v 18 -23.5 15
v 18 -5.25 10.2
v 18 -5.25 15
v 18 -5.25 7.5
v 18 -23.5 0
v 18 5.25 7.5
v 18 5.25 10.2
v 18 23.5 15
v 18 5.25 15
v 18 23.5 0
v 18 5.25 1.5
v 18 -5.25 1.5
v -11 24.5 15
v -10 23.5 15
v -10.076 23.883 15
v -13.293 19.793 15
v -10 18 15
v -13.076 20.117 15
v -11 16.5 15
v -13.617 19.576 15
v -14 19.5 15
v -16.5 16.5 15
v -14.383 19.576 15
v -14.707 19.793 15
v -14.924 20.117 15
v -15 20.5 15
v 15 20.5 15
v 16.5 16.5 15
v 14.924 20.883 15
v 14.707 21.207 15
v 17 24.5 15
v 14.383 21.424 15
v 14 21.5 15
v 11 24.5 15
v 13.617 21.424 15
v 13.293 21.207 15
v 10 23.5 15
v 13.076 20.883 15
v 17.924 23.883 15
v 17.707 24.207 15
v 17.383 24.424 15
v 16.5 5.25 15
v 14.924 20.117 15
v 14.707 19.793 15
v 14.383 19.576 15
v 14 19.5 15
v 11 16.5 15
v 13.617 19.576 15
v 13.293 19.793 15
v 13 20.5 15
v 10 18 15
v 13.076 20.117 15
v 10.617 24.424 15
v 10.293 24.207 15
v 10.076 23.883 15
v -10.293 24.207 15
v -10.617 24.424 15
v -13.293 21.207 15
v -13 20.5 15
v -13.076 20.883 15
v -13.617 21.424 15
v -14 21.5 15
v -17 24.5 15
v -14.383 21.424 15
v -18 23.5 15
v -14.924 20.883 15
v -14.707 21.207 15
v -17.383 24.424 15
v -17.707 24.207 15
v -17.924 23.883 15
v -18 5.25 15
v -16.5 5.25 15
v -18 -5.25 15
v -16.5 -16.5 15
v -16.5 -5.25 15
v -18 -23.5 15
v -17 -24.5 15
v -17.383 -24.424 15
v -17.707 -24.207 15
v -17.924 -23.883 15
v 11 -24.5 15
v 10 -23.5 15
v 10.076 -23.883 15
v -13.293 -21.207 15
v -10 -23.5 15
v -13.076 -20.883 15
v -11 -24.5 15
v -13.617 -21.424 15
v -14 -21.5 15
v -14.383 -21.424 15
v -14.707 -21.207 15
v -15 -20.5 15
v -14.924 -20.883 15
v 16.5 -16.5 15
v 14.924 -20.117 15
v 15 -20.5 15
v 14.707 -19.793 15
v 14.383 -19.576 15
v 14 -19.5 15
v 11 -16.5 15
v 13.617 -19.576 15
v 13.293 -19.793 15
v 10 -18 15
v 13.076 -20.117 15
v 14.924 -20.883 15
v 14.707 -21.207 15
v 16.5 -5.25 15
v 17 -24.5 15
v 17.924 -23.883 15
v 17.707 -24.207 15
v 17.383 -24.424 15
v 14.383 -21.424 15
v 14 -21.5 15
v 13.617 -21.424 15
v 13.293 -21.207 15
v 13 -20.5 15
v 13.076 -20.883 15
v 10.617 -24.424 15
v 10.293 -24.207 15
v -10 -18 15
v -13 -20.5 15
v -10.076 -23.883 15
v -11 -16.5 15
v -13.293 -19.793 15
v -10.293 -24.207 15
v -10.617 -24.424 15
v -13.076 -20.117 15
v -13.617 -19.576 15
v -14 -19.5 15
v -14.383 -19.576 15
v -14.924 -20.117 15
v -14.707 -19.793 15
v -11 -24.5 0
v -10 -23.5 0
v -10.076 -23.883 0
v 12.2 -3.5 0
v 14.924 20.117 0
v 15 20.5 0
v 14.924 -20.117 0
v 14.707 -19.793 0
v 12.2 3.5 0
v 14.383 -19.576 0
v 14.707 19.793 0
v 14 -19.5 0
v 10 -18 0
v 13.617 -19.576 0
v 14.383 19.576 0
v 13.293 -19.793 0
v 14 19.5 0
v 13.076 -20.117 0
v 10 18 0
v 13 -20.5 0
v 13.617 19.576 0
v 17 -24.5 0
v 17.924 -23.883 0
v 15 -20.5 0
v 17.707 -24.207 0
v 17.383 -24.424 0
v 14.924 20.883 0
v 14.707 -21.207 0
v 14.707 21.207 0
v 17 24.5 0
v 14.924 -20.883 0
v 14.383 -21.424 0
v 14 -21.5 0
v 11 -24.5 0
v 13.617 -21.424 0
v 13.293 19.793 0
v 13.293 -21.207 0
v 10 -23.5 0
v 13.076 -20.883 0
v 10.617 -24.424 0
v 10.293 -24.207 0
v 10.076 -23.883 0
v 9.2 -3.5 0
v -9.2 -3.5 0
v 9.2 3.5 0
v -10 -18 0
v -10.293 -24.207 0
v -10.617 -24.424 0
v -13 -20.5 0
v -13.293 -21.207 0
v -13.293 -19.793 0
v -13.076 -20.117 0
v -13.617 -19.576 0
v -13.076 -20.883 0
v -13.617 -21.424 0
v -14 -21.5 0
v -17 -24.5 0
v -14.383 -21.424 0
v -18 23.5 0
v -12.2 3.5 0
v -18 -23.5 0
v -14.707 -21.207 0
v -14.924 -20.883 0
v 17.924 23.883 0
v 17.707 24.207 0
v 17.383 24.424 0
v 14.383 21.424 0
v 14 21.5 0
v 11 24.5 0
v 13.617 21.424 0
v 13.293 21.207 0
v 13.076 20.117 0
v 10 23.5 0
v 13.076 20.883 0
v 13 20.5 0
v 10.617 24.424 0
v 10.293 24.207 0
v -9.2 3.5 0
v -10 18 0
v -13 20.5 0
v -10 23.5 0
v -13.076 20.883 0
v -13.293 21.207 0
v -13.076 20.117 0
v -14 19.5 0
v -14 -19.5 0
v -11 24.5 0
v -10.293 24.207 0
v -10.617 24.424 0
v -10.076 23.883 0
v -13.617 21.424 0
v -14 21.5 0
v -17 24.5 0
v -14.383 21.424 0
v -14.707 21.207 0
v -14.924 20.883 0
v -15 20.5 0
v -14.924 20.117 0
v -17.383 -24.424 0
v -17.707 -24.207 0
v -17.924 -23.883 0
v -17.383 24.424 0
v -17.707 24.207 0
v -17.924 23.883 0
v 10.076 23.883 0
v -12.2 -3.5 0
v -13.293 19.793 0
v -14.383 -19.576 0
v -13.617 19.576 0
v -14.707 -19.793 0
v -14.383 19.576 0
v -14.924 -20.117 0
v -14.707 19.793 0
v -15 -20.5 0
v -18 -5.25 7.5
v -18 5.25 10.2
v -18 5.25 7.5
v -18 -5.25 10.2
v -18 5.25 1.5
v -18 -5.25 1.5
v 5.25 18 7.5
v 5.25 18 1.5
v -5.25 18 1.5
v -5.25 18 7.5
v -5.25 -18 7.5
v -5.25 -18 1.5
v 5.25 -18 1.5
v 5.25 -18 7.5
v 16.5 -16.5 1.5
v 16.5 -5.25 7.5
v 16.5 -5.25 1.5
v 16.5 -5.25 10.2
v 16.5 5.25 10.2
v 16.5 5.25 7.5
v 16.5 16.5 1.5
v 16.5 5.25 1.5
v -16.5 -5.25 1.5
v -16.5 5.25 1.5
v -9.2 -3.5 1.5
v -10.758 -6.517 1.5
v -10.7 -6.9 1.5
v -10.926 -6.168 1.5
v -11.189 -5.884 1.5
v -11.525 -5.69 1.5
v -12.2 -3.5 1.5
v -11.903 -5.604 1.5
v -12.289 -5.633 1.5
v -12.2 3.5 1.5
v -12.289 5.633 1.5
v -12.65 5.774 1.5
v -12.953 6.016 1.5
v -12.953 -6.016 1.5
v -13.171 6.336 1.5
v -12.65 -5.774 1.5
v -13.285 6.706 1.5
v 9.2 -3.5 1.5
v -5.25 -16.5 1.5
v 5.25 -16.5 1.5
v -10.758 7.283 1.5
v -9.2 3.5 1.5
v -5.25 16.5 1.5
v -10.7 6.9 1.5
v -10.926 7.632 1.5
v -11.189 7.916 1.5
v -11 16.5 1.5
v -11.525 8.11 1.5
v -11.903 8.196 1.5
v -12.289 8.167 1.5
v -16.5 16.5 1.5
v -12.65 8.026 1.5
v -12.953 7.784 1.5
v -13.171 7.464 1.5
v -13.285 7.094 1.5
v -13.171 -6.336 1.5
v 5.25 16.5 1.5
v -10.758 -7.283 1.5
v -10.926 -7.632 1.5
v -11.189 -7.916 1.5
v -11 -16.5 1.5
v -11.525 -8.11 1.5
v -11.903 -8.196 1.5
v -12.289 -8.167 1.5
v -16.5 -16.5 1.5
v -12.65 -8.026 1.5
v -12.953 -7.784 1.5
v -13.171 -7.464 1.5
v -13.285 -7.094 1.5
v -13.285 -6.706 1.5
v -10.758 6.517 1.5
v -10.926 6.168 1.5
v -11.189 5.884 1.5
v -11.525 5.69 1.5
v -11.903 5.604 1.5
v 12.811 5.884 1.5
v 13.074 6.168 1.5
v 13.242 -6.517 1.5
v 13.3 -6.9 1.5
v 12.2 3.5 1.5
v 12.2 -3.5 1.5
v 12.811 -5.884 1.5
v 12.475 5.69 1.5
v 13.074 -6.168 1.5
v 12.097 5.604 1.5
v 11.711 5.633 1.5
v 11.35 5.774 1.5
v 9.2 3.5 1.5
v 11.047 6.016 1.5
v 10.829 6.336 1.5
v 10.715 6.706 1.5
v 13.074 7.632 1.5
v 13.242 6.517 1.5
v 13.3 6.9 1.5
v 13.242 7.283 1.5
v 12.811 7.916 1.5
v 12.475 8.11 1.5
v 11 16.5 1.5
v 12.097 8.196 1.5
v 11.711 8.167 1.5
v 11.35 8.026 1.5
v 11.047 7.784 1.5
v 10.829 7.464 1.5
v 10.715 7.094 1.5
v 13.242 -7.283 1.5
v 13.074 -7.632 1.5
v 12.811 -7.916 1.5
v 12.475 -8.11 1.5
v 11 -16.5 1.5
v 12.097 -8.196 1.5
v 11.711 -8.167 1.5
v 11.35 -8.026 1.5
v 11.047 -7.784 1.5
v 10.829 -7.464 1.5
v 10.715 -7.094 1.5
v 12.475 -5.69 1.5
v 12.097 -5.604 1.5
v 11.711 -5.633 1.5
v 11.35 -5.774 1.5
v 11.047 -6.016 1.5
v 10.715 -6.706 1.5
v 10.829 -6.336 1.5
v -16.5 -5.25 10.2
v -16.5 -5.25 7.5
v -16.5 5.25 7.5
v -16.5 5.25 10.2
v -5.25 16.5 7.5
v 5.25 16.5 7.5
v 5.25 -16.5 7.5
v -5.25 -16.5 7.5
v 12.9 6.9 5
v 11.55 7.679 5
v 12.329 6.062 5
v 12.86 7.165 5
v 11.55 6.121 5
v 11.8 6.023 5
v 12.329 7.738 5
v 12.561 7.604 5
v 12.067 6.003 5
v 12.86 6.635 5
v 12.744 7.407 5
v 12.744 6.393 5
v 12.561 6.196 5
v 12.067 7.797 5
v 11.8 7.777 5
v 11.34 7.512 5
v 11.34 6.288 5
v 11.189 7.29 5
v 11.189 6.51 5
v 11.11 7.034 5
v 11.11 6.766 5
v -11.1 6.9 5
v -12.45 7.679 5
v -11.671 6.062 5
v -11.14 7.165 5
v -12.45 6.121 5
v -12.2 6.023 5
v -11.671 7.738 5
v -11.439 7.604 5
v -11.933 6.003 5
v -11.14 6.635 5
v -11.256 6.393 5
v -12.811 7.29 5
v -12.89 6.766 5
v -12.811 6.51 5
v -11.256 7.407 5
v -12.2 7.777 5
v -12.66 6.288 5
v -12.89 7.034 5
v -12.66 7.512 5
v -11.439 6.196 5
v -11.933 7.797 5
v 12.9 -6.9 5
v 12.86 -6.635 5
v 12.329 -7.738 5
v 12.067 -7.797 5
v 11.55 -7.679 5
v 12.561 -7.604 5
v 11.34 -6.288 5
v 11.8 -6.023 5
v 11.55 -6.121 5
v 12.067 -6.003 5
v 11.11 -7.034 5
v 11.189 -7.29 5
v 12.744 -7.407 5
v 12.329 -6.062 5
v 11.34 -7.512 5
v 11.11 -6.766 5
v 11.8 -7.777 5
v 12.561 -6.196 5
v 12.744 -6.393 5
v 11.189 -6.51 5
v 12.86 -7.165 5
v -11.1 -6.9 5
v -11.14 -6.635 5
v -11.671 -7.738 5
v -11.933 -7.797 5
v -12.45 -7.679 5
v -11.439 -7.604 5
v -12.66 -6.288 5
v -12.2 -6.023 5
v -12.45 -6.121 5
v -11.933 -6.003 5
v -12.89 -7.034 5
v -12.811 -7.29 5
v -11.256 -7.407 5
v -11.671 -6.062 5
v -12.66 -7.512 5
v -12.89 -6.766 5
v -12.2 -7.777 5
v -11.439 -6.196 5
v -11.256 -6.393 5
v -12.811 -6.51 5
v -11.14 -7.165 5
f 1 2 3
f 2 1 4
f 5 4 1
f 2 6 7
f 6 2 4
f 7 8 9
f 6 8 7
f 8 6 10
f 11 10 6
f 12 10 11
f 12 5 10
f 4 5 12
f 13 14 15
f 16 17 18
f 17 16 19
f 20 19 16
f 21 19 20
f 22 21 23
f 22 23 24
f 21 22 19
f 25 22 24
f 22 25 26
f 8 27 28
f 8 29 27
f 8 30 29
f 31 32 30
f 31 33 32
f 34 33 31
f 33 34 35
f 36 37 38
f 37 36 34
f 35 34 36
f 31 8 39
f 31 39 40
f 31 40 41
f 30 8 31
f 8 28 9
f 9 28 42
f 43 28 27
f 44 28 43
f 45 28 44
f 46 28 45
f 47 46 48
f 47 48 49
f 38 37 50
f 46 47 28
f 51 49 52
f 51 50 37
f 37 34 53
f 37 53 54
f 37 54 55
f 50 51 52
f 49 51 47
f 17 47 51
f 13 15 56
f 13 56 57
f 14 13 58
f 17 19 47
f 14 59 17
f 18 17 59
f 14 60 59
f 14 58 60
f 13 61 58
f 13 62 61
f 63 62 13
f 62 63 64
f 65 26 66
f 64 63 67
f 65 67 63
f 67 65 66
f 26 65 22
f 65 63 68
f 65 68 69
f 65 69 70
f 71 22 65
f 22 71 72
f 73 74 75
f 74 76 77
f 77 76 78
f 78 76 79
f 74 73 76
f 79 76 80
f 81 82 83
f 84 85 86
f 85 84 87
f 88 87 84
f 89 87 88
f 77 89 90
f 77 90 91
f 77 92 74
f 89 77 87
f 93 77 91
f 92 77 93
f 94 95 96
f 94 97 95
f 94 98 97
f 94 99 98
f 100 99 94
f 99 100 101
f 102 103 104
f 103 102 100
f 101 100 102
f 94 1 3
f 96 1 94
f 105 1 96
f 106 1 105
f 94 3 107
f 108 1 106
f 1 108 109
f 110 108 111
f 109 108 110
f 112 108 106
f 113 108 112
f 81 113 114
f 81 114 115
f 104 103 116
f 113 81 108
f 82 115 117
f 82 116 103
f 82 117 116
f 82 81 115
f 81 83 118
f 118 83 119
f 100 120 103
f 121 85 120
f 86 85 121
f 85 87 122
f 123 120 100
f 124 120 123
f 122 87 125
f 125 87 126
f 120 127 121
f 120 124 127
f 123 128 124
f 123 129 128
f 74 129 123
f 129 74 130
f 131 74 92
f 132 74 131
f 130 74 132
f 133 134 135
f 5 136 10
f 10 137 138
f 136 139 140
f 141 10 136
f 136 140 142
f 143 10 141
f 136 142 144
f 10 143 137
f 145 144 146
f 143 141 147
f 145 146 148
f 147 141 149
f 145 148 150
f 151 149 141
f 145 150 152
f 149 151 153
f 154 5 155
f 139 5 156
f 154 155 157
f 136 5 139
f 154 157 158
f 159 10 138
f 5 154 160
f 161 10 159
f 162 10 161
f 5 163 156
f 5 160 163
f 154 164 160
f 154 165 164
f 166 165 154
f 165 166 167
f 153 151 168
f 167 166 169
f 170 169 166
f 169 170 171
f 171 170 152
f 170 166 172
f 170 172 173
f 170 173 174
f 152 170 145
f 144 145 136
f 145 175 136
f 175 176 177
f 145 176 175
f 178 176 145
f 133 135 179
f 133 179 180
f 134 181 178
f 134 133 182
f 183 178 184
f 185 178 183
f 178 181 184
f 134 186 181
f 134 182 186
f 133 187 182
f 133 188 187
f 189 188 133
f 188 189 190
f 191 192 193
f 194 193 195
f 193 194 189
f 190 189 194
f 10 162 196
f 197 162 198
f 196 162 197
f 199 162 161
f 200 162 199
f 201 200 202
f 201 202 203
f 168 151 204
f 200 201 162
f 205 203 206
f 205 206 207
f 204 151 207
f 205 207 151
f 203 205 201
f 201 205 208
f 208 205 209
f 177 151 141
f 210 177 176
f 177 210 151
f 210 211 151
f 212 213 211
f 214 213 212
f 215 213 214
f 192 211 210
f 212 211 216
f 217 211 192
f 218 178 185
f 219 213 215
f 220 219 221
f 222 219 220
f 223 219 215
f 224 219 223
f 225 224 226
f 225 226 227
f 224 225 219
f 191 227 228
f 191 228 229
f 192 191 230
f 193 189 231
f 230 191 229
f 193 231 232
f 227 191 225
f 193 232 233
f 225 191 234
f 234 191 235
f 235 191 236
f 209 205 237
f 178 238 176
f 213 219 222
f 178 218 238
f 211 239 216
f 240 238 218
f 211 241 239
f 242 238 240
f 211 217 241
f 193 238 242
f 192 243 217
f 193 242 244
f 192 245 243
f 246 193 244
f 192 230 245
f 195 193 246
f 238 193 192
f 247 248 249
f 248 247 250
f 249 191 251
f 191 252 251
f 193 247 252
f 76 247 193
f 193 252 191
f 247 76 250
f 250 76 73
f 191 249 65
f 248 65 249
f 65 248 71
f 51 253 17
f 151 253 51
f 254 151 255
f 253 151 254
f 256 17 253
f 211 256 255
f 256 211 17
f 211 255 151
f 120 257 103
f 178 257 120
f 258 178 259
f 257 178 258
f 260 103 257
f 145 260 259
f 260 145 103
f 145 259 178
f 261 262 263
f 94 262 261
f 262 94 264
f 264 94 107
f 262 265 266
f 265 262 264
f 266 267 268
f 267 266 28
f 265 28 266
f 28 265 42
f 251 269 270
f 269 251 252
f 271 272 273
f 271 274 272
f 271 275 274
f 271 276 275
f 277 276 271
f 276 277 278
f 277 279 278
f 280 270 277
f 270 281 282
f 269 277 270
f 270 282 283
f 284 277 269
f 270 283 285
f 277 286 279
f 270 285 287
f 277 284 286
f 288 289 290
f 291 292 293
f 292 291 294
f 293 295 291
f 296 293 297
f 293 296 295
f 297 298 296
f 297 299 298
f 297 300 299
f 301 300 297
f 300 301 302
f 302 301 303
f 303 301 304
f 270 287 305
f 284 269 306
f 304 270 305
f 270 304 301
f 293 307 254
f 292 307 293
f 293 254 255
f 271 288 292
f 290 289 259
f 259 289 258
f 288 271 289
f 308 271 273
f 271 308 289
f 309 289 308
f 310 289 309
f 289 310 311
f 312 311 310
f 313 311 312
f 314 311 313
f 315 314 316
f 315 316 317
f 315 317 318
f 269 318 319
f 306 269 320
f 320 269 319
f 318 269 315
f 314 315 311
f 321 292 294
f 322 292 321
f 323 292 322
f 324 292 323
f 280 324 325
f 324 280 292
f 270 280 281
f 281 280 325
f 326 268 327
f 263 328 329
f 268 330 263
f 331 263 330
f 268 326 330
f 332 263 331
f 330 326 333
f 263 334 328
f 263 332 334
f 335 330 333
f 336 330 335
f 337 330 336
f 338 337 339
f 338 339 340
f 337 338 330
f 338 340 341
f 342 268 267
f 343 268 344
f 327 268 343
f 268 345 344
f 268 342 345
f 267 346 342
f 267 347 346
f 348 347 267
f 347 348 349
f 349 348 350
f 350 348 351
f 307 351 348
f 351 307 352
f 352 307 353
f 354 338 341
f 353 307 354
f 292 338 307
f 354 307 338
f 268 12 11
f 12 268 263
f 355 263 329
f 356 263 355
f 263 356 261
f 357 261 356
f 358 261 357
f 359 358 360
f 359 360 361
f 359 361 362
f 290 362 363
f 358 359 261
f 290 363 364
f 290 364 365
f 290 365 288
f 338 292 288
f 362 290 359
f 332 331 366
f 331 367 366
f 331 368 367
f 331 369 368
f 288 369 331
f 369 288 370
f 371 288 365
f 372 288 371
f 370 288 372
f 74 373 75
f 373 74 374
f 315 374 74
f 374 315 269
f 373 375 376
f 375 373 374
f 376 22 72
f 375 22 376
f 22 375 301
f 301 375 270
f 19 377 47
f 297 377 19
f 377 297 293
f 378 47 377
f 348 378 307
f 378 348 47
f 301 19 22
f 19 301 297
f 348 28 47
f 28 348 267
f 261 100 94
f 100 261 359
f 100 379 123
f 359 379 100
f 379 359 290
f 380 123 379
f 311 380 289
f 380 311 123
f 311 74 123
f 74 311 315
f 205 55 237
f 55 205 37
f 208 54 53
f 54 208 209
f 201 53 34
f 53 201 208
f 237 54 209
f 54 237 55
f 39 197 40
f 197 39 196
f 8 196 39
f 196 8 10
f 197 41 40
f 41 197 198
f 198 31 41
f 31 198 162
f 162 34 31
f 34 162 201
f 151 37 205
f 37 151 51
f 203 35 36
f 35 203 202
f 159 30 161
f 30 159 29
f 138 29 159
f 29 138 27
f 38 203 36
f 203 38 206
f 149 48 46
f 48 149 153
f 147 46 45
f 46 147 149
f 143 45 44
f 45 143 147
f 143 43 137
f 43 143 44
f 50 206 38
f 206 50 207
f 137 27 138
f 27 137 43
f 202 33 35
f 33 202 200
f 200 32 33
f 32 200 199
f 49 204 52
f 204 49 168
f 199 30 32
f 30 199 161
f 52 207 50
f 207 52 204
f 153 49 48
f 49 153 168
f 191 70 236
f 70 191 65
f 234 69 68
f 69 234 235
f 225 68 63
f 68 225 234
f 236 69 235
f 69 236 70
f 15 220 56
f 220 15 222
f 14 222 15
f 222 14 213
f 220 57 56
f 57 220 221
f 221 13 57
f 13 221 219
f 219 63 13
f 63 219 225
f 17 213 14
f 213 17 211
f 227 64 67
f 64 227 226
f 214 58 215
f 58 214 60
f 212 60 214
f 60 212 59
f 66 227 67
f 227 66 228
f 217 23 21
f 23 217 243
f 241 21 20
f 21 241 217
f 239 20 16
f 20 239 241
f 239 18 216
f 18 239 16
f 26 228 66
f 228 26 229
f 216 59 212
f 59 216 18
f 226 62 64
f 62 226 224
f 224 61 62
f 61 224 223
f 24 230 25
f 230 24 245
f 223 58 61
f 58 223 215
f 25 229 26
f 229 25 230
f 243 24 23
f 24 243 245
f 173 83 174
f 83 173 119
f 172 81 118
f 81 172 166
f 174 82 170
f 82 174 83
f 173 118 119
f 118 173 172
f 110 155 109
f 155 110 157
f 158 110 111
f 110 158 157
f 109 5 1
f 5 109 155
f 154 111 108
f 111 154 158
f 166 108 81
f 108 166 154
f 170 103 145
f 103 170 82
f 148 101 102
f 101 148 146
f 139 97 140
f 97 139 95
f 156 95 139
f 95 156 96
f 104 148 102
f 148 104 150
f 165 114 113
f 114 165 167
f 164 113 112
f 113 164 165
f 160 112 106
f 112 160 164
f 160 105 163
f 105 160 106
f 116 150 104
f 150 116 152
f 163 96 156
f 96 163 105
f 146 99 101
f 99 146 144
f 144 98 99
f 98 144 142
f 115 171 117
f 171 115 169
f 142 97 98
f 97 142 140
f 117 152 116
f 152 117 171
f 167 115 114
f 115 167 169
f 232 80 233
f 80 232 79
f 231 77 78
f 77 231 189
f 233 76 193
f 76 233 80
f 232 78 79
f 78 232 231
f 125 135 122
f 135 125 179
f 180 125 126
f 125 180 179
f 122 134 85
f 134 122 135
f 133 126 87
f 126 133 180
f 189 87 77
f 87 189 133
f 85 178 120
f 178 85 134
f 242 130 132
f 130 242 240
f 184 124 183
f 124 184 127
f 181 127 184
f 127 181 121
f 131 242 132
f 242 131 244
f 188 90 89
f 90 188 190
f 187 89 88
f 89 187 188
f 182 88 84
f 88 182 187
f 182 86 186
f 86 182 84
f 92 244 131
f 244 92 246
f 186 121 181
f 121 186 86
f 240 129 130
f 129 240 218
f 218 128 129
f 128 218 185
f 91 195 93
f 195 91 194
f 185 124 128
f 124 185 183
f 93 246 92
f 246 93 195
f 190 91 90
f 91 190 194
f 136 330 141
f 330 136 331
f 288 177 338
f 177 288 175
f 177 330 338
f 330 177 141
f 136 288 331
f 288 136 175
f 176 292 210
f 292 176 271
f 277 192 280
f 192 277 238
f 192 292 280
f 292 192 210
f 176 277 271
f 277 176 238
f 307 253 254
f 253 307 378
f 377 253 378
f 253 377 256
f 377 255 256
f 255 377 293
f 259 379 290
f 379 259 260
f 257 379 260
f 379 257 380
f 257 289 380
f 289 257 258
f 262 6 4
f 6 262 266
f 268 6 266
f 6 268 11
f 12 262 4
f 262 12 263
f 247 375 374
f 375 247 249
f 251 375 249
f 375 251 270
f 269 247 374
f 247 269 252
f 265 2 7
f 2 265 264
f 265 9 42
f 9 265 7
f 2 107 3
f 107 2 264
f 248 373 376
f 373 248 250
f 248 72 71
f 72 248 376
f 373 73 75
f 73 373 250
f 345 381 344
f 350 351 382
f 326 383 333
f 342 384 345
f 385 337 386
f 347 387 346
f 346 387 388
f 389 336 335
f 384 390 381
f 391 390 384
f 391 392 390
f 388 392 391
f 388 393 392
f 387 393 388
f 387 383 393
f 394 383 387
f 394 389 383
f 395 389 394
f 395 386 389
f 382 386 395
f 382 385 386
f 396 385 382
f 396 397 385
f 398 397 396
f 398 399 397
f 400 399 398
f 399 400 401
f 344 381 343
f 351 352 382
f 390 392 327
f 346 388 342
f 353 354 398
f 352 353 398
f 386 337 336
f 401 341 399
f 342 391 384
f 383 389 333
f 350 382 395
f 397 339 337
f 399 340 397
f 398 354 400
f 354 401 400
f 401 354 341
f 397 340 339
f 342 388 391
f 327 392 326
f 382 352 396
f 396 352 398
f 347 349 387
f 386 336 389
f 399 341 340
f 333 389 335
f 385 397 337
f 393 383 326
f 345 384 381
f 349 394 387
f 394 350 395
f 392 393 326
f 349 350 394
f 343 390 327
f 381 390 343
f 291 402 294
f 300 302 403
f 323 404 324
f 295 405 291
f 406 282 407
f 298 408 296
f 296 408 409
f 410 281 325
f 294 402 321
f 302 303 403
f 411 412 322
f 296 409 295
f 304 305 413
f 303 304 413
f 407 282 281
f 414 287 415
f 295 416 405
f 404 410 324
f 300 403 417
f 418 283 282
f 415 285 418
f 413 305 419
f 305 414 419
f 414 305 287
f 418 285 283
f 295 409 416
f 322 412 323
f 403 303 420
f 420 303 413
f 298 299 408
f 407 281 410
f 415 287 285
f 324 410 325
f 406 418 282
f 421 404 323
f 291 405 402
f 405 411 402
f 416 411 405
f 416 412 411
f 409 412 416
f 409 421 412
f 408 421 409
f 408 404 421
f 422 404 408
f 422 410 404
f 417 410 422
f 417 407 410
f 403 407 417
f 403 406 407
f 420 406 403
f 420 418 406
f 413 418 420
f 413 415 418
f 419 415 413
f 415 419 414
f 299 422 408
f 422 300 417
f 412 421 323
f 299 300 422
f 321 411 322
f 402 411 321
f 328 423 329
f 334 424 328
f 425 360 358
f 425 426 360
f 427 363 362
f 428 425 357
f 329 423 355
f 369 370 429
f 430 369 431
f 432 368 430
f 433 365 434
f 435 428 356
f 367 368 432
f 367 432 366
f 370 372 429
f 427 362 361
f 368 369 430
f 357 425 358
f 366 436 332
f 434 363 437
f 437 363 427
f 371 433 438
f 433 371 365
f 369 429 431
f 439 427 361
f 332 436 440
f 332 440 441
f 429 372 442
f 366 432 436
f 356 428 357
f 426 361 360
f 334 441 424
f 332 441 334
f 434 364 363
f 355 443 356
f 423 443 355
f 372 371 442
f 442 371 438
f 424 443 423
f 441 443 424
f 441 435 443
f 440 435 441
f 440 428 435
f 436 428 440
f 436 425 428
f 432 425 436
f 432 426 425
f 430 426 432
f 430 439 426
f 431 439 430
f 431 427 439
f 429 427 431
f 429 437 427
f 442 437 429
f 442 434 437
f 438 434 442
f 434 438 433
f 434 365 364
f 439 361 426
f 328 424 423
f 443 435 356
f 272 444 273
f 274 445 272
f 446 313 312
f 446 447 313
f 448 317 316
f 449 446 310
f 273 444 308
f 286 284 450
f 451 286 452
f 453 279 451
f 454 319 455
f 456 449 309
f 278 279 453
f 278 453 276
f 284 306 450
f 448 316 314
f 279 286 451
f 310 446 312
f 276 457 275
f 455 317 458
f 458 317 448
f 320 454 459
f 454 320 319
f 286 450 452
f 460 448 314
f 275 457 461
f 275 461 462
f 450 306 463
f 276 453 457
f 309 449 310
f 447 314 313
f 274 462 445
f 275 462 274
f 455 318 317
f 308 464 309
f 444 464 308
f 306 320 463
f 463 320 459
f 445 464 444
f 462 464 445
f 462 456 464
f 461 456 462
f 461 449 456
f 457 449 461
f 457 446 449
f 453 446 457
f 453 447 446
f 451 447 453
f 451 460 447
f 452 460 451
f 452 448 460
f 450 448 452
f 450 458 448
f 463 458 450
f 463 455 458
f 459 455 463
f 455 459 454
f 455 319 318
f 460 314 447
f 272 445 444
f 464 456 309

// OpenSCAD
// file: consts.scad
//    consts.scad
//    Constant values for OpenSCAD model 
//
//    Copyright (C) 2026 Clear Creek Scientific
//
//    This program is free software: you can redistribute it and/or modify
//    it under the terms of the GNU General Public License as published by
//    the Free Software Foundation, either version 3 of the License, or
//    (at your option) any later version.
//
//    This program is distributed in the hope that it will be useful,
//    but WITHOUT ANY WARRANTY; without even the implied warranty of
//    MERCHANTABILITY or FITNESS FOR A PARTICULAR PURPOSE.  See the
//    GNU General Public License for more details.
//
//    You should have received a copy of the GNU General Public License
//    along with this program.  If not, see <https://www.gnu.org/licenses/>.

WALL_WIDTH = 1.5;
TAB_WIDTH = 8;
HALF_TAB_WIDTH = 0.5 * TAB_WIDTH;
TAB_HOLE_RADIUS = 1;
TAB_CORNER_RADIUS=1;
DRAIN_HOLE_HEIGHT = 5.0;
DRAIN_HOLE_RADIUS = 2.0;
SCREW_HOLE_HEIGHT = 2.0 * WALL_WIDTH;
SCREW_HOLE_RADIUS = 1.0;
SCREW_HEAD_HEIGHT = 0.5*WALL_WIDTH;
SCREW_HEAD_RADIUS = 2.5;

BATTERY_INNER_X_DIM = 69.2;
BATTERY_INNER_Y_DIM = 19.0;
BATTERY_WALL_HEIGHT = BATTERY_INNER_Y_DIM + WALL_WIDTH + 5.0;
BATTERY_OUTER_X_DIM = BATTERY_INNER_X_DIM + 2*WALL_WIDTH;
BATTERY_OUTER_Y_DIM = BATTERY_INNER_Y_DIM + 2*WALL_WIDTH;
BATTERY_X_OFFSET = 10; 

PANEL_WALL_HEIGHT = 8;
PANEL_INNER_X_DIM = 138;
PANEL_INNER_Y_DIM = 114;
PANEL_OUTER_X_DIM = PANEL_INNER_X_DIM + 2*WALL_WIDTH;
PANEL_OUTER_Y_DIM = PANEL_INNER_Y_DIM + 2*WALL_WIDTH;
PANEL_CENTER_BOX_WIDTH = 30;

PANEL_CENTER_X_LEN = 52.5;
PANEL_CENTER_Y_LEN = 41.0;

MOUNT_INNER_X_DIM = 33.0;
MOUNT_INNER_Y_DIM = MOUNT_INNER_X_DIM;
MOUNT_WALL_HEIGHT = 36.0;
MOUNT_OUTER_X_DIM = MOUNT_INNER_X_DIM + 2*WALL_WIDTH;
MOUNT_OUTER_Y_DIM = MOUNT_INNER_Y_DIM + 2*WALL_WIDTH;

CHARGER_INNER_X_DIM = MOUNT_INNER_X_DIM;
CHARGER_INNER_Y_DIM = MOUNT_INNER_Y_DIM;
CHARGER_WALL_HEIGHT = 15.0;
CHARGER_OUTER_X_DIM = CHARGER_INNER_X_DIM + 2*WALL_WIDTH;
CHARGER_OUTER_Y_DIM = CHARGER_INNER_Y_DIM + 2*WALL_WIDTH;

HINGE_TAB_WIDTH = 15.0;
HINGE_TAB_DEPTH = 3.0;
HINGE_TAB_HEIGHT = 16.0;
HINGE_TAB_RADIUS = 3.0;

HINGE_HOLE_DEPTH = HINGE_TAB_DEPTH+0.2;
// Hinge hole needs to accept a 10/32 inch screw
HINGE_HOLE_DIAMETER = 6;
HINGE_HOLE_RADIUS = 0.5*HINGE_HOLE_DIAMETER;
HINGE_HOLE_OFFSET = HINGE_TAB_HEIGHT - (HINGE_HOLE_RADIUS+3);

HINGE_GAP = 3.1;
HINGE_SUPPORT_OVERHANG = 2.0;
// file: common.scad
//    battery_box.scad
//    OpenSCAD model for a box for a PKCELL 18650 lithium-ion battery 
//
//    Copyright (C) 2026 Clear Creek Scientific
//
//    This program is free software: you can redistribute it and/or modify
//    it under the terms of the GNU General Public License as published by
//    the Free Software Foundation, either version 3 of the License, or
//    (at your option) any later version.
//
//    This program is distributed in the hope that it will be useful,
//    but WITHOUT ANY WARRANTY; without even the implied warranty of
//    MERCHANTABILITY or FITNESS FOR A PARTICULAR PURPOSE.  See the
//    GNU General Public License for more details.
//
//    You should have received a copy of the GNU General Public License
//    along with this program.  If not, see <https://www.gnu.org/licenses/>.

include <consts.scad>
use <MCAD/boxes.scad>
use <MCAD/regular_shapes.scad>

module tab(height) {
    difference() {
        roundedBox(size=[TAB_WIDTH,TAB_WIDTH,height],radius=TAB_CORNER_RADIUS,sidesonly=true);
        translate([0,0,-height]) {
            cylinder(2*height,TAB_HOLE_RADIUS,TAB_HOLE_RADIUS);
        }
    }
}

module drain_hole() {
    //cylinder(h=DRAIN_HOLE_HEIGHT,r=DRAIN_HOLE_RADIUS,center=true);
    cube([DRAIN_HOLE_HEIGHT,DRAIN_HOLE_HEIGHT,DRAIN_HOLE_HEIGHT],center=true);
}

module screw_hole() {
    union() {
        cylinder(h=SCREW_HOLE_HEIGHT,r=SCREW_HOLE_RADIUS,center=true);
        translate([0,0,0.5*WALL_WIDTH]) {
            cylinder(h=SCREW_HEAD_HEIGHT,r=SCREW_HEAD_RADIUS,center=true);
        }
    }
}

module hinge_tab(hole_offset) {
    rotate([90,0,0]) {
        difference() {
            roundedBox(size=[HINGE_TAB_WIDTH,HINGE_TAB_HEIGHT,HINGE_TAB_DEPTH],radius=HINGE_TAB_RADIUS,sidesonly=true);
            translate([0,hole_offset,0]) {
                cylinder(h=HINGE_HOLE_DEPTH+0.2,r=HINGE_HOLE_RADIUS,center=true);
            }
        }
    }
}

BASE_X_DIM = MOUNT_OUTER_X_DIM;
BASE_Y_DIM = MOUNT_OUTER_Y_DIM+2*(TAB_WIDTH-WALL_WIDTH);

module mount_hinge_base() {
    union () {
        // main base 
        difference() {
            roundedBox(size=[BASE_X_DIM,BASE_Y_DIM,WALL_WIDTH],radius=TAB_CORNER_RADIUS,sidesonly=true);

            // cut out screw holes
            translate([0.5*(BASE_X_DIM-TAB_WIDTH),0.5*(BASE_Y_DIM-TAB_WIDTH),0]) {
                screw_hole();
            }
            translate([-0.5*(BASE_X_DIM-TAB_WIDTH),0.5*(BASE_Y_DIM-TAB_WIDTH),0]) {
                screw_hole();
            }
            translate([0.5*(BASE_X_DIM-TAB_WIDTH),-0.5*(BASE_Y_DIM-TAB_WIDTH),0]) {
                screw_hole();
            }
            translate([-0.5* (BASE_X_DIM-TAB_WIDTH),-0.5*(BASE_Y_DIM-TAB_WIDTH),0]) {
                screw_hole();
            }
        } // difference

        // support base for hinges
        translate([0,0,0.5*HINGE_TAB_DEPTH]) {
            cube([HINGE_TAB_WIDTH+2*HINGE_SUPPORT_OVERHANG,4*HINGE_TAB_DEPTH+HINGE_GAP+2*HINGE_SUPPORT_OVERHANG,HINGE_TAB_DEPTH],center=true);
        }
    }
}
// main file
// charger_box.scad
//    OpenSCAD model for a box to enclose Adafruit's bq25185 battery charger 
//
//    Copyright (C) 2026 Clear Creek Scientific
//
//    This program is free software: you can redistribute it and/or modify
//    it under the terms of the GNU General Public License as published by
//    the Free Software Foundation, either version 3 of the License, or
//    (at your option) any later version.
//
//    This program is distributed in the hope that it will be useful,
//    but WITHOUT ANY WARRANTY; without even the implied warranty of
//    MERCHANTABILITY or FITNESS FOR A PARTICULAR PURPOSE.  See the
//    GNU General Public License for more details.
//
//    You should have received a copy of the GNU General Public License
//    along with this program.  If not, see <https://www.gnu.org/licenses/>.

include <common.scad>

$fa=1;
$fs=0.4;

LONG_PIN_MEASURE = 24.0;
SHORT_PIN_MEASURE = 13.8;
PIN_HEIGHT = 3.5;
PIN_RADIUS = 1.3;
PIN_POINT_RADIUS = 0.9;

CHARGER_CUTOUT_WIDTH = 10.5;
CHARGER_CUTOUT_HEIGHT = 6.0;
CHARGER_PIN_CUTOUT_X = 3;
CHARGER_PIN_CUTOUT_Y = 7;
PANEL_CABLE_WIDTH = 2;

module basic_charger_box() {
    difference() {
    
        // outer box
        cube([CHARGER_OUTER_X_DIM,CHARGER_OUTER_Y_DIM,CHARGER_WALL_HEIGHT],center=true); 

        // cut out inner box
        translate([0,0,WALL_WIDTH]) {
            cube([CHARGER_INNER_X_DIM,CHARGER_INNER_Y_DIM,CHARGER_WALL_HEIGHT],center=true); 
        }
    } // difference
}

module basic_charger_box_with_cutouts() {
    difference() {

        translate([0,0,0.5*CHARGER_WALL_HEIGHT]) {
            basic_charger_box();
        }

        // make pin cutouts
        translate([0.5*(LONG_PIN_MEASURE)-PIN_RADIUS,0,WALL_WIDTH-0.5]) {
            cube([CHARGER_PIN_CUTOUT_X,CHARGER_PIN_CUTOUT_Y,WALL_WIDTH+1],center=true); 
        }
        translate([-0.5*(LONG_PIN_MEASURE)+PIN_RADIUS,0,WALL_WIDTH-0.5]) {
            cube([CHARGER_PIN_CUTOUT_X,CHARGER_PIN_CUTOUT_Y,WALL_WIDTH+1],center=true); 
        }
       
        // make end cutouts
        translate([0,0.5*(CHARGER_INNER_Y_DIM+WALL_WIDTH),0.5*CHARGER_CUTOUT_HEIGHT+WALL_WIDTH]) {
            cube([CHARGER_CUTOUT_WIDTH,WALL_WIDTH+1,CHARGER_CUTOUT_HEIGHT],center=true); 
        }
        translate([0,-0.5*(CHARGER_INNER_Y_DIM+WALL_WIDTH),0.5*CHARGER_CUTOUT_HEIGHT+WALL_WIDTH]) {
            cube([CHARGER_CUTOUT_WIDTH,WALL_WIDTH+1,CHARGER_CUTOUT_HEIGHT],center=true); 
        }
        
        // make side cutouts
        translate([0.5*(CHARGER_INNER_X_DIM+WALL_WIDTH),0,0.5*CHARGER_CUTOUT_HEIGHT+WALL_WIDTH]) {
            cube([WALL_WIDTH+1,CHARGER_CUTOUT_WIDTH,CHARGER_CUTOUT_HEIGHT],center=true); 
        }
        translate([-0.5*(CHARGER_INNER_X_DIM+WALL_WIDTH),0,0.5*CHARGER_CUTOUT_HEIGHT+WALL_WIDTH]) {
            cube([WALL_WIDTH+1,CHARGER_CUTOUT_WIDTH,CHARGER_CUTOUT_HEIGHT],center=true); 
        }

        // make panel cable cutouts
        translate([0.5*(CHARGER_INNER_X_DIM+WALL_WIDTH),0,CHARGER_WALL_HEIGHT-(PANEL_CABLE_WIDTH-0.2)]) {
            cube([WALL_WIDTH+1,CHARGER_CUTOUT_WIDTH,CHARGER_CUTOUT_HEIGHT],center=true); 
        }
        translate([-0.5*(CHARGER_INNER_X_DIM+WALL_WIDTH),0,CHARGER_WALL_HEIGHT-(PANEL_CABLE_WIDTH-0.2)]) {
            cube([WALL_WIDTH+1,CHARGER_CUTOUT_WIDTH,CHARGER_CUTOUT_HEIGHT],center=true); 
        }

    } // difference
}

module charger_box() {
    union() {
        basic_charger_box_with_cutouts();
       
        // pins
        translate([0.5*(LONG_PIN_MEASURE),0.5*(SHORT_PIN_MEASURE),0.5*PIN_HEIGHT+WALL_WIDTH]) {
            cylinder(h=PIN_HEIGHT,r1=PIN_RADIUS,r2=PIN_POINT_RADIUS,center=true);
        }
        translate([-0.5*(LONG_PIN_MEASURE),0.5*(SHORT_PIN_MEASURE),0.5*PIN_HEIGHT+WALL_WIDTH]) {
            cylinder(h=PIN_HEIGHT,r1=PIN_RADIUS,r2=PIN_POINT_RADIUS,center=true);
        }
        translate([0.5*(LONG_PIN_MEASURE),-0.5*(SHORT_PIN_MEASURE),0.5*PIN_HEIGHT+WALL_WIDTH]) {
            cylinder(h=PIN_HEIGHT,r1=PIN_RADIUS,r2=PIN_POINT_RADIUS,center=true);
        }
        translate([-0.5*(LONG_PIN_MEASURE),-0.5*(SHORT_PIN_MEASURE),0.5*PIN_HEIGHT+WALL_WIDTH]) {
            cylinder(h=PIN_HEIGHT,r1=PIN_RADIUS,r2=PIN_POINT_RADIUS,center=true);
        }
 
        // tabs
        translate([0.5*(CHARGER_OUTER_X_DIM - TAB_WIDTH),0.5*(CHARGER_INNER_Y_DIM + TAB_WIDTH),0.5*CHARGER_WALL_HEIGHT]) {
            tab(CHARGER_WALL_HEIGHT);
        }
        translate([-0.5*(CHARGER_OUTER_X_DIM - TAB_WIDTH),0.5*(CHARGER_INNER_Y_DIM + TAB_WIDTH),0.5*CHARGER_WALL_HEIGHT]) {
            tab(CHARGER_WALL_HEIGHT);
        }
        translate([0.5*(CHARGER_OUTER_X_DIM - TAB_WIDTH),-0.5*(CHARGER_INNER_Y_DIM + TAB_WIDTH),0.5*CHARGER_WALL_HEIGHT]) {
            tab(CHARGER_WALL_HEIGHT);
        }
        translate([-0.5*(CHARGER_OUTER_X_DIM - TAB_WIDTH),-0.5*(CHARGER_INNER_Y_DIM + TAB_WIDTH),0.5*CHARGER_WALL_HEIGHT]) {
            tab(CHARGER_WALL_HEIGHT);
        }
        
    }
}

charger_box();
